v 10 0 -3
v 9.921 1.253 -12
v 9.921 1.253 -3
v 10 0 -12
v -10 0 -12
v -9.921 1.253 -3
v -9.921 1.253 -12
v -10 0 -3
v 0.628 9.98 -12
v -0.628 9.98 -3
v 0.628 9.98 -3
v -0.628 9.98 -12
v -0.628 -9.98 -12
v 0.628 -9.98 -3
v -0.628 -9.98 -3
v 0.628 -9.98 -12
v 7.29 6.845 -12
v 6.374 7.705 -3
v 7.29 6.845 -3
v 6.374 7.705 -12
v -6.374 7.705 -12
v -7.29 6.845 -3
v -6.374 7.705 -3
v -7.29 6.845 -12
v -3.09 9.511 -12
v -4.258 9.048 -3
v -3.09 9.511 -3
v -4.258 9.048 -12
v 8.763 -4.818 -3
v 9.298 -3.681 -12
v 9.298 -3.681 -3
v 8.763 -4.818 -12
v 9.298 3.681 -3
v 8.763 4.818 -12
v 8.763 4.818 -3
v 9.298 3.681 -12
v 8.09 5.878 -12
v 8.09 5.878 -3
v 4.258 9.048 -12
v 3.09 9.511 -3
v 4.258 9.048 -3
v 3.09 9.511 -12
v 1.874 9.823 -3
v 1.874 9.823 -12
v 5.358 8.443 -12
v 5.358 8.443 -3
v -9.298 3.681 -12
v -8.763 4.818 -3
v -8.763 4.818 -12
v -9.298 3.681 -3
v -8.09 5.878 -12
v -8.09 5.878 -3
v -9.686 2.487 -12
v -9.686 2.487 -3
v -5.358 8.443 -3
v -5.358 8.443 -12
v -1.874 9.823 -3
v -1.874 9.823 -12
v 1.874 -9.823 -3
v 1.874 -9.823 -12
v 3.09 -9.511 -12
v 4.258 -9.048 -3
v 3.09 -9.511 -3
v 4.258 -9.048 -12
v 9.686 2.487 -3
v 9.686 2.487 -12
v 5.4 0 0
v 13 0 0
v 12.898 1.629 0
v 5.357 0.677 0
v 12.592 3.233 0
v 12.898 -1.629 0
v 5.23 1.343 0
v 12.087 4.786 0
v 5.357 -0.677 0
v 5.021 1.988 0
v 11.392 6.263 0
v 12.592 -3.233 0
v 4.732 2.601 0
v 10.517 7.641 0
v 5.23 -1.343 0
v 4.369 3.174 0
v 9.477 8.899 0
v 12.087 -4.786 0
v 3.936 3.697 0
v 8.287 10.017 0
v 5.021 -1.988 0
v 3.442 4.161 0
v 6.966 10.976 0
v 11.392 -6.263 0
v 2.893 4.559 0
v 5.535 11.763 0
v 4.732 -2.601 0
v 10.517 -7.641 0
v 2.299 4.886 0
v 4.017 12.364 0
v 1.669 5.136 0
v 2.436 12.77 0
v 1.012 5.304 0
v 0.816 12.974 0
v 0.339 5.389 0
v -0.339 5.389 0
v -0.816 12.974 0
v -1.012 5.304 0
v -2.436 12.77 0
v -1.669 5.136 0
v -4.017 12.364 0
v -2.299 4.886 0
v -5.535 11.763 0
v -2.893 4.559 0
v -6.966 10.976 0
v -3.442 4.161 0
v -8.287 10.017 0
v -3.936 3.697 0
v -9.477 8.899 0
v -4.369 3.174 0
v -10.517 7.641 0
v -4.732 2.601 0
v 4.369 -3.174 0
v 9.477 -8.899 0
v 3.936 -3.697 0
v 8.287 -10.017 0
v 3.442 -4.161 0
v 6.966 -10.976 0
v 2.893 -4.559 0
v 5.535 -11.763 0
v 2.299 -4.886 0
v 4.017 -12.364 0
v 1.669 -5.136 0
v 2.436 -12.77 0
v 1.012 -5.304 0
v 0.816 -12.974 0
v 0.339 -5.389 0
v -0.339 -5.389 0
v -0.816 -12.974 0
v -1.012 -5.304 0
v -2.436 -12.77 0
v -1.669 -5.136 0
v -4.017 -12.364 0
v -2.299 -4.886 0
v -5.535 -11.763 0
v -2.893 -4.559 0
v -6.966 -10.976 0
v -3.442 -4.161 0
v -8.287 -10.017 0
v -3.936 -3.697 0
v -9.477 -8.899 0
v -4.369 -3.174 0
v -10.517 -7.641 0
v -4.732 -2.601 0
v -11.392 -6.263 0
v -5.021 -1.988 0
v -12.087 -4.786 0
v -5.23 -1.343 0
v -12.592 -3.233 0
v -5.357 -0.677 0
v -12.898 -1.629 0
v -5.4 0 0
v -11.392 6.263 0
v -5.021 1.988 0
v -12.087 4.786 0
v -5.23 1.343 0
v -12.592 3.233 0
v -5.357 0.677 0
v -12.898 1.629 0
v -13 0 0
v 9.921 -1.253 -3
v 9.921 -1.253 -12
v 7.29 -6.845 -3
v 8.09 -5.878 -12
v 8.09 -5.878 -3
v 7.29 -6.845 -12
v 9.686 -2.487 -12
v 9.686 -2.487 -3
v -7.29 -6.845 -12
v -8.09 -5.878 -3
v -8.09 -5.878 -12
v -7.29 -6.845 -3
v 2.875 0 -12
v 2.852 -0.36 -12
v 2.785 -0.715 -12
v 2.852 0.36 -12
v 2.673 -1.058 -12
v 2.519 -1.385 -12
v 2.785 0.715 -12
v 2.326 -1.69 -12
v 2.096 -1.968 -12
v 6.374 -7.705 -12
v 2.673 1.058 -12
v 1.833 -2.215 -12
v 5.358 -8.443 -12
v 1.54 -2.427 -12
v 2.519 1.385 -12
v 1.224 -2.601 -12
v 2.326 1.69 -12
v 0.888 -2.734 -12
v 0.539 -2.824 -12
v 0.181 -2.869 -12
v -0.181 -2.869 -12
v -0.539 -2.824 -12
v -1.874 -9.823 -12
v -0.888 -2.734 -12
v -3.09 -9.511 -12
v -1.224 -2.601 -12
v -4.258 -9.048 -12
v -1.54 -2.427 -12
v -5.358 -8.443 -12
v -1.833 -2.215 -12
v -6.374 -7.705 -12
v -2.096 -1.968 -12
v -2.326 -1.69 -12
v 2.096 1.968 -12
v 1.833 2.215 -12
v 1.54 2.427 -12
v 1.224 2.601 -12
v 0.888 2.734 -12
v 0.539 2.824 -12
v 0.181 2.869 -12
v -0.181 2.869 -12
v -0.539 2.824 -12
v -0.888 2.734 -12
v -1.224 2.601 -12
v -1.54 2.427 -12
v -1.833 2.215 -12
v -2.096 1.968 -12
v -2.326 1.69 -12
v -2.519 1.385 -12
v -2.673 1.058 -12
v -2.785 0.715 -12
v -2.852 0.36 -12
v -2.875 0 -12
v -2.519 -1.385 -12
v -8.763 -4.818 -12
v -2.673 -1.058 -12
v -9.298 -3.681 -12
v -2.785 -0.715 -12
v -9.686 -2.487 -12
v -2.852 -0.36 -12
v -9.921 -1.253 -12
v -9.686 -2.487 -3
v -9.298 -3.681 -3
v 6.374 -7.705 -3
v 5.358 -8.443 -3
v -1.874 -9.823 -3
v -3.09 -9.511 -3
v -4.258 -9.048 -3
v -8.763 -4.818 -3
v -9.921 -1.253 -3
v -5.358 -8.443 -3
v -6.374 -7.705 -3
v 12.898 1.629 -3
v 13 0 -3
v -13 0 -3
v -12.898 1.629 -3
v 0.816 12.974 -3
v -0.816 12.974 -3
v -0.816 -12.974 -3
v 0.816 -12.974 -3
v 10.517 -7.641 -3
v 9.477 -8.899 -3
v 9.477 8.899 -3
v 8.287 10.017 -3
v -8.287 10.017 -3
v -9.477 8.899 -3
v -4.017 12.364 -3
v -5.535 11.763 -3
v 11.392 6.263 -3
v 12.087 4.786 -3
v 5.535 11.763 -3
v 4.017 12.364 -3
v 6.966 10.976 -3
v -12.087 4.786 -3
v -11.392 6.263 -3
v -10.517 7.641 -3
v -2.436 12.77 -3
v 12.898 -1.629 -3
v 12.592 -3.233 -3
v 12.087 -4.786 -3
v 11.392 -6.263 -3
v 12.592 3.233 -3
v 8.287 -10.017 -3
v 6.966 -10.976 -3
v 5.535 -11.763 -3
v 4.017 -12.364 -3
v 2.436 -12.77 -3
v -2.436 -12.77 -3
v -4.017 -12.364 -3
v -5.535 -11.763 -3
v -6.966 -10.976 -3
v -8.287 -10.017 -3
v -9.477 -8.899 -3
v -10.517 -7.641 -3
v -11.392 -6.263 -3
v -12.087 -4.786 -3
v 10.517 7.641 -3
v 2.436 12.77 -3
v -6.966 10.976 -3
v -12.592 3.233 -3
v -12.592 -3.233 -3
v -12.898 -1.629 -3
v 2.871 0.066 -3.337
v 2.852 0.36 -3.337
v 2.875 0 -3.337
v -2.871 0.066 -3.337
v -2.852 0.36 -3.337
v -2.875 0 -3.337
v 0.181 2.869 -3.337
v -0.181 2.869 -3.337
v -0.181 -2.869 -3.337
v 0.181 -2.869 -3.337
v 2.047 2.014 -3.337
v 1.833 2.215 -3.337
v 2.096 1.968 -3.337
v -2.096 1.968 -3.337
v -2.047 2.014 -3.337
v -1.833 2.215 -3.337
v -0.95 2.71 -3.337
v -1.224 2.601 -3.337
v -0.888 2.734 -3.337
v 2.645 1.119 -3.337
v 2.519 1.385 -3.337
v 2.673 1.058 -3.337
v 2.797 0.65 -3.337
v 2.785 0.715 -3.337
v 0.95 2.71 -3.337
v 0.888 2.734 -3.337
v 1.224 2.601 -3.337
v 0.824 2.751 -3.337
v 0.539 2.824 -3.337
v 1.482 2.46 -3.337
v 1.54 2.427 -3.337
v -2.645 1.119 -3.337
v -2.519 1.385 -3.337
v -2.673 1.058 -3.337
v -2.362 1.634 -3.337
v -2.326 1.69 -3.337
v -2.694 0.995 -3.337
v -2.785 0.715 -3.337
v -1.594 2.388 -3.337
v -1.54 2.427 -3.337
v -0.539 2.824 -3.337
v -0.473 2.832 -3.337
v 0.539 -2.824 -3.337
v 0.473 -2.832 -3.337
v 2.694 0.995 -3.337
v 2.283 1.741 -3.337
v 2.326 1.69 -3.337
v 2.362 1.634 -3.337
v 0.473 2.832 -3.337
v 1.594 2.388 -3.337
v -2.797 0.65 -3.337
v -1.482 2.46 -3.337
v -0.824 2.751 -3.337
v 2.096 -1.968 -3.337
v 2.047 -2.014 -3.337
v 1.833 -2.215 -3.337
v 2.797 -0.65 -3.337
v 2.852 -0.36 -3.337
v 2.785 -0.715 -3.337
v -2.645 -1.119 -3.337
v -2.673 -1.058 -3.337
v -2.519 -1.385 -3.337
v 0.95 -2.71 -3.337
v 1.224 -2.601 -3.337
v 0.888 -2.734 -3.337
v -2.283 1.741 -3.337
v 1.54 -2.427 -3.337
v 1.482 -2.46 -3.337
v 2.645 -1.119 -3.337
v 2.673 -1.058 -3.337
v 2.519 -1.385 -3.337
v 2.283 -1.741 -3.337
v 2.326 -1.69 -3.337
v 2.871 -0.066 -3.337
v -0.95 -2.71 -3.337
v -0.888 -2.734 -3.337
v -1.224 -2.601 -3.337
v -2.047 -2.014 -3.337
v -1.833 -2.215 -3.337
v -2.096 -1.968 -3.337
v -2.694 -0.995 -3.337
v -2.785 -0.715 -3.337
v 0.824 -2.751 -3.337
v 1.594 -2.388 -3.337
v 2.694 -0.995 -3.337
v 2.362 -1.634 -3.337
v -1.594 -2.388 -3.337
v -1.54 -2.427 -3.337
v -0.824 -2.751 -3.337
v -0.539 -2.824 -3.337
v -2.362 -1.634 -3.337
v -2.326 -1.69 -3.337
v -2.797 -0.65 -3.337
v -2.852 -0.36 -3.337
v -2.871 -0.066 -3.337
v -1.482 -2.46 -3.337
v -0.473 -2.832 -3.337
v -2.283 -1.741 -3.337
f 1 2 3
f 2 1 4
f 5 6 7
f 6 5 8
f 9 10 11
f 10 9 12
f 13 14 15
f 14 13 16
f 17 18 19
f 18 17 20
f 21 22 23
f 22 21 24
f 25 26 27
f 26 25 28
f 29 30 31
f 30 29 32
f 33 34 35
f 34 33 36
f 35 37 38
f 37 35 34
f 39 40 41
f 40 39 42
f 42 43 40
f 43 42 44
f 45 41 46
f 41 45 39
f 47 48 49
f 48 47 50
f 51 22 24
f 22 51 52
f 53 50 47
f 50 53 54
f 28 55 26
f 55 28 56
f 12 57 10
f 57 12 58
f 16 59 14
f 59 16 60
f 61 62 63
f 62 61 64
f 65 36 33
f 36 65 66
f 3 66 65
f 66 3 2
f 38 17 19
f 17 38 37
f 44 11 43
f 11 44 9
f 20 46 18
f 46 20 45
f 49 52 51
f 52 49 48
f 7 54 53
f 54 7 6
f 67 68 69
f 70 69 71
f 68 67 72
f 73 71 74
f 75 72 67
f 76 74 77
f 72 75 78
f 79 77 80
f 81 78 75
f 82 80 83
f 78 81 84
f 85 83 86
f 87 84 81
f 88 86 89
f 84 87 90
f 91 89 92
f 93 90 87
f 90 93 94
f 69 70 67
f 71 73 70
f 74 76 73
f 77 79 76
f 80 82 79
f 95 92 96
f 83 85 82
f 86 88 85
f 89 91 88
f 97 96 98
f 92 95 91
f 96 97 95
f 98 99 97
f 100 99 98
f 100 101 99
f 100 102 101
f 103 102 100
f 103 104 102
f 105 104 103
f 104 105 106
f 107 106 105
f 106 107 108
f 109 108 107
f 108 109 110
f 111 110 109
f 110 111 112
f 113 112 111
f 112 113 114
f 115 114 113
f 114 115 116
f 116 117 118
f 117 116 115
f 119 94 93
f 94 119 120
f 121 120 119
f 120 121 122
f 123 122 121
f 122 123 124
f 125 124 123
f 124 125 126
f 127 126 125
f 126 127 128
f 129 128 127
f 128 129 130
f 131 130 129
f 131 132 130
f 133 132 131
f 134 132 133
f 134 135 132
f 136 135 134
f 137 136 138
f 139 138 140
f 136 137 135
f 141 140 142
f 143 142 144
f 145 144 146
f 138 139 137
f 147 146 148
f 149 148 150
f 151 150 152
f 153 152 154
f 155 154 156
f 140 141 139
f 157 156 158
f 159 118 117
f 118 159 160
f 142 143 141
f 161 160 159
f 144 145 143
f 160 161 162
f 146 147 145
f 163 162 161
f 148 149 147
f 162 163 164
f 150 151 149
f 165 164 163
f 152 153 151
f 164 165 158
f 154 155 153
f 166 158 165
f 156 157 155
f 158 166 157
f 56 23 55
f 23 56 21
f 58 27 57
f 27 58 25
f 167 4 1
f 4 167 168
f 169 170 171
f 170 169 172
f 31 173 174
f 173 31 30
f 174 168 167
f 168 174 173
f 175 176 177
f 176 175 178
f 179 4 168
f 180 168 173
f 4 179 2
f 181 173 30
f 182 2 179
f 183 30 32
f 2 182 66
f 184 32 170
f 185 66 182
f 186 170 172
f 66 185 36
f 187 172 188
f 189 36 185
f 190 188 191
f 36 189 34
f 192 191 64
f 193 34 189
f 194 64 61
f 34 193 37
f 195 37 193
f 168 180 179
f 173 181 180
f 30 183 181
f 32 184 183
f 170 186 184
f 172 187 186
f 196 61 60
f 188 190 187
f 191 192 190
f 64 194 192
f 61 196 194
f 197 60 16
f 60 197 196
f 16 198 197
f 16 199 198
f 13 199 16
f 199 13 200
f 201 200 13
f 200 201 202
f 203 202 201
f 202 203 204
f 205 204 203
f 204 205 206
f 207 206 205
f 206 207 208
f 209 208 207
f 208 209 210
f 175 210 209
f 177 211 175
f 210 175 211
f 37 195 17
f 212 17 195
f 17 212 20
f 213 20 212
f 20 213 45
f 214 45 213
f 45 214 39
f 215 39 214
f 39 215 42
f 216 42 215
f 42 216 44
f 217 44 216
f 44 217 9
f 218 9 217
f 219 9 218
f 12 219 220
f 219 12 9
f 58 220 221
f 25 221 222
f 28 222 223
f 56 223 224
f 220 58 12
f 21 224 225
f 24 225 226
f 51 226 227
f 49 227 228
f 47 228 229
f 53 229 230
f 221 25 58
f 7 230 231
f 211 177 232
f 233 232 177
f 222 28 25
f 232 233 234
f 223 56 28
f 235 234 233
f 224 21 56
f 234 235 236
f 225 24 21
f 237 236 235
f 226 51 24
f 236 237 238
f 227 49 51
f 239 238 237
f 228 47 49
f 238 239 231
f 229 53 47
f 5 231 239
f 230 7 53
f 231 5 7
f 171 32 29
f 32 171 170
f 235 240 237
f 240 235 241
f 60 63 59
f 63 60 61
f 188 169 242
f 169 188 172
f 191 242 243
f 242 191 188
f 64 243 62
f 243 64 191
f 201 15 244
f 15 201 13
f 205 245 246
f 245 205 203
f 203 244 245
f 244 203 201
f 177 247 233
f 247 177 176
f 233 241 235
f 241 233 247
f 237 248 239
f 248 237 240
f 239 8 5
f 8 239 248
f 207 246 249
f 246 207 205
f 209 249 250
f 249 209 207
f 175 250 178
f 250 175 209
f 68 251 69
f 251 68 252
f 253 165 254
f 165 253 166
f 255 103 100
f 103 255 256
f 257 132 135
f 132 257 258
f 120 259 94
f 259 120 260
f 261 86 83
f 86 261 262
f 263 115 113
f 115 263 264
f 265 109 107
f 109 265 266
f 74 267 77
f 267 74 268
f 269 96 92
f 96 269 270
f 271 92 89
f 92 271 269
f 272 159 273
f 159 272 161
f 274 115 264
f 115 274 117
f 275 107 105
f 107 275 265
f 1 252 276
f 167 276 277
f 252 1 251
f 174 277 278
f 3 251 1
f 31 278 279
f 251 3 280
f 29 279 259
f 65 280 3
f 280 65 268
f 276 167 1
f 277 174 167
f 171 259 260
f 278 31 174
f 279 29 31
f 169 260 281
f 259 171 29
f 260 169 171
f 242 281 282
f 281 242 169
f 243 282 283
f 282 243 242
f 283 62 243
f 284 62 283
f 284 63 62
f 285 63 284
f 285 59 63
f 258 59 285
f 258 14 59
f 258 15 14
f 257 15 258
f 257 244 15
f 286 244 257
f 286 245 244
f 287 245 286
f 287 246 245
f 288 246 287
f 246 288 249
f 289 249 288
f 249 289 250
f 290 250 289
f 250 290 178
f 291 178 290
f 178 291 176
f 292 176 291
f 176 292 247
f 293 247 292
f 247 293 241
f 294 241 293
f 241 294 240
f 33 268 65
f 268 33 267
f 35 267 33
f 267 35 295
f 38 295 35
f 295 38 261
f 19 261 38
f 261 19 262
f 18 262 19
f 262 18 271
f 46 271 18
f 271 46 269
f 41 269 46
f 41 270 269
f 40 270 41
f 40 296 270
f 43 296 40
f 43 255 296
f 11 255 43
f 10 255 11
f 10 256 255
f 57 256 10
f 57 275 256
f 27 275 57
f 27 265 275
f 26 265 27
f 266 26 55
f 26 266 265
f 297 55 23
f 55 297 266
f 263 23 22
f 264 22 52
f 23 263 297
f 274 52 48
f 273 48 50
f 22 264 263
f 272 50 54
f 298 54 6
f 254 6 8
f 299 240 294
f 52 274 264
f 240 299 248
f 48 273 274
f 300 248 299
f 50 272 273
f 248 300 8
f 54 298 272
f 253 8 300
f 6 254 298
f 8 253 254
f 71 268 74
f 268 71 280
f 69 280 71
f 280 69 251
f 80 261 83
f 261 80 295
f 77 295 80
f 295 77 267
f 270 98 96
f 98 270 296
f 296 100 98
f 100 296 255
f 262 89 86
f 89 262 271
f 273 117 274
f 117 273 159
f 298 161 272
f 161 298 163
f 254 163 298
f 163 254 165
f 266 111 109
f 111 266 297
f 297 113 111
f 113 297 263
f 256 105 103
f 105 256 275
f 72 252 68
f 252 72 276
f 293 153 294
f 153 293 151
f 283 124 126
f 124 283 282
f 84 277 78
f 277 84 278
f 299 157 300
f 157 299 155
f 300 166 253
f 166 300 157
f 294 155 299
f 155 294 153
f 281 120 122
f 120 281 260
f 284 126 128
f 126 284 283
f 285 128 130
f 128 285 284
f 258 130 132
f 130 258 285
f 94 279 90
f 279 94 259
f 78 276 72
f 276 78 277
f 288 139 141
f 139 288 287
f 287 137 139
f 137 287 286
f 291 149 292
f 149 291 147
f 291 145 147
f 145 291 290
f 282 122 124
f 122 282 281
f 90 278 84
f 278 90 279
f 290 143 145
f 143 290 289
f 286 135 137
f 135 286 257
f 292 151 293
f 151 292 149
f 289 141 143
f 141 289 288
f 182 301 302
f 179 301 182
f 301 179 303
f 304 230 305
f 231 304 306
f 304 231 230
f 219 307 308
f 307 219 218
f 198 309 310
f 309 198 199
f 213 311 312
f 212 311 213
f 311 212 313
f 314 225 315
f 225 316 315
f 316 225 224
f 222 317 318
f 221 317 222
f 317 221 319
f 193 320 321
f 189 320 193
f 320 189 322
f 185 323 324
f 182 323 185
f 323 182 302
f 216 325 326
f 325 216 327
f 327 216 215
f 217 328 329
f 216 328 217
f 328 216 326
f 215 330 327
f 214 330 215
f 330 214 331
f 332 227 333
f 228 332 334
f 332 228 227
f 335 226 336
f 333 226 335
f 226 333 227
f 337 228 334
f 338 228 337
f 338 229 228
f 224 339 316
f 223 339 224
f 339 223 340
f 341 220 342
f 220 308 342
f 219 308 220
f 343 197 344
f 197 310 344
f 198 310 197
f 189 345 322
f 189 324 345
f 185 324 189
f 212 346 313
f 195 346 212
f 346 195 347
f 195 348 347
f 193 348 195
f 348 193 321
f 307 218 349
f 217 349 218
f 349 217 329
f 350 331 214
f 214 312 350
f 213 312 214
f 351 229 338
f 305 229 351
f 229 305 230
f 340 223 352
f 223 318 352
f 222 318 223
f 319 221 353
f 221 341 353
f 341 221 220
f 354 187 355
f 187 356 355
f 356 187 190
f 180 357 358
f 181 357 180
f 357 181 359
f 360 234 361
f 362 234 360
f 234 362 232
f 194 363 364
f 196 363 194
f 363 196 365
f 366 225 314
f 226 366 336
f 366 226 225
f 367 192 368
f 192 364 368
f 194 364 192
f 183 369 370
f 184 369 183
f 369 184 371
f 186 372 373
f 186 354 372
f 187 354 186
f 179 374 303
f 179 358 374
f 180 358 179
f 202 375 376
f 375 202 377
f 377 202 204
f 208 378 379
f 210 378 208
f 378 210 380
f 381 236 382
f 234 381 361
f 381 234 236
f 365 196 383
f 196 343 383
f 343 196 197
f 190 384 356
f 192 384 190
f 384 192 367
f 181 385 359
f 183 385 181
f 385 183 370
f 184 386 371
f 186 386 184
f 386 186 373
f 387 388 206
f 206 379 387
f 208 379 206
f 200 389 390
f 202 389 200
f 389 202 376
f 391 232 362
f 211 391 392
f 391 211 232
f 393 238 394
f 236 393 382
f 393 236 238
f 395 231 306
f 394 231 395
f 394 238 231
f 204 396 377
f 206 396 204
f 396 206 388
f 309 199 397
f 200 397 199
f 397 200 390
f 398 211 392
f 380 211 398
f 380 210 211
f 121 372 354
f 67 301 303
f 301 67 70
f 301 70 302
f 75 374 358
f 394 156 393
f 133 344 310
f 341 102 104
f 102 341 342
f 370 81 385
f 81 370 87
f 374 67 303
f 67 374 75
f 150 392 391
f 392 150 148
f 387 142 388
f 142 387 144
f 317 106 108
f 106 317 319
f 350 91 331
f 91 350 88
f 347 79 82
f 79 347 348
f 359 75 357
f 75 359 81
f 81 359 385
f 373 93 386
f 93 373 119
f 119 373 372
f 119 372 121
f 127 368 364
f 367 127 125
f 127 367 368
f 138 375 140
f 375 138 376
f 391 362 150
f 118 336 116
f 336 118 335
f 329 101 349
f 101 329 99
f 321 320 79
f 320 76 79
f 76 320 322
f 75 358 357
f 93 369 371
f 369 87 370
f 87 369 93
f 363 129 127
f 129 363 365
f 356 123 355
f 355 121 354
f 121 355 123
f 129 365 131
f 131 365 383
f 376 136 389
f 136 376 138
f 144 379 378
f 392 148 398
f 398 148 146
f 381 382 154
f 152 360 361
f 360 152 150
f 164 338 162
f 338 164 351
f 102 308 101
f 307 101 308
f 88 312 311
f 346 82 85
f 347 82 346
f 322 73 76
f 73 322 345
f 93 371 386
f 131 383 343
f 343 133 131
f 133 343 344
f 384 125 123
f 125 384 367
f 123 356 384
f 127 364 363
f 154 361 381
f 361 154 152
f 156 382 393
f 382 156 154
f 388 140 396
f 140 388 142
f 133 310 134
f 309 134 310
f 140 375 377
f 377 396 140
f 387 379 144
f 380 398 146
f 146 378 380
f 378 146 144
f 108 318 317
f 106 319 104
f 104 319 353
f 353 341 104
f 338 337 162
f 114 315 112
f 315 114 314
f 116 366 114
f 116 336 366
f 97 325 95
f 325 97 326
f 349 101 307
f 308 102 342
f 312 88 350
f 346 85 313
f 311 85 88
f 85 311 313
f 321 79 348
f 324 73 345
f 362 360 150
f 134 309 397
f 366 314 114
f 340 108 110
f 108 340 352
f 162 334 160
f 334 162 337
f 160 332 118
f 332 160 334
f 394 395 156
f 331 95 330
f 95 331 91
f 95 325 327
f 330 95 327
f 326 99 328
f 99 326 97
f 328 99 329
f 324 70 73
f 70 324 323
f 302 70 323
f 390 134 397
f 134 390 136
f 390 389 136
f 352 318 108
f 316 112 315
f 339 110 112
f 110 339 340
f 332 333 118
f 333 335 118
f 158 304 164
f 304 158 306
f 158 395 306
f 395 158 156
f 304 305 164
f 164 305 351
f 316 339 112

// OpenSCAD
$fn = 50;


difference() {
	union() {
		translate(v = [0, 0, -12.0000000000]) {
			cylinder(h = 12, r = 10.0000000000);
		}
		translate(v = [0, 0, -3.0000000000]) {
			cylinder(h = 3, r = 13.0000000000);
		}
	}
	union() {
		translate(v = [0, 0, 0]) {
			rotate(a = [0, 0, 0]) {
				difference() {
					union() {
						translate(v = [0, 0, -12.0000000000]) {
							cylinder(h = 12, r = 2.6000000000);
						}
						translate(v = [0, 0, -12.0000000000]) {
							cylinder(h = 12, r = 2.8750000000);
						}
						translate(v = [0, 0, -3.7000000000]) {
							cylinder(h = 3.7000000000, r = 10.0000000000, r1 = 2.6000000000, r2 = 5.4000000000);
						}
						translate(v = [0, 0, -12.0000000000]) {
							cylinder(h = 12, r = 2.6000000000);
						}
					}
					union();
				}
			}
		}
	}
}
